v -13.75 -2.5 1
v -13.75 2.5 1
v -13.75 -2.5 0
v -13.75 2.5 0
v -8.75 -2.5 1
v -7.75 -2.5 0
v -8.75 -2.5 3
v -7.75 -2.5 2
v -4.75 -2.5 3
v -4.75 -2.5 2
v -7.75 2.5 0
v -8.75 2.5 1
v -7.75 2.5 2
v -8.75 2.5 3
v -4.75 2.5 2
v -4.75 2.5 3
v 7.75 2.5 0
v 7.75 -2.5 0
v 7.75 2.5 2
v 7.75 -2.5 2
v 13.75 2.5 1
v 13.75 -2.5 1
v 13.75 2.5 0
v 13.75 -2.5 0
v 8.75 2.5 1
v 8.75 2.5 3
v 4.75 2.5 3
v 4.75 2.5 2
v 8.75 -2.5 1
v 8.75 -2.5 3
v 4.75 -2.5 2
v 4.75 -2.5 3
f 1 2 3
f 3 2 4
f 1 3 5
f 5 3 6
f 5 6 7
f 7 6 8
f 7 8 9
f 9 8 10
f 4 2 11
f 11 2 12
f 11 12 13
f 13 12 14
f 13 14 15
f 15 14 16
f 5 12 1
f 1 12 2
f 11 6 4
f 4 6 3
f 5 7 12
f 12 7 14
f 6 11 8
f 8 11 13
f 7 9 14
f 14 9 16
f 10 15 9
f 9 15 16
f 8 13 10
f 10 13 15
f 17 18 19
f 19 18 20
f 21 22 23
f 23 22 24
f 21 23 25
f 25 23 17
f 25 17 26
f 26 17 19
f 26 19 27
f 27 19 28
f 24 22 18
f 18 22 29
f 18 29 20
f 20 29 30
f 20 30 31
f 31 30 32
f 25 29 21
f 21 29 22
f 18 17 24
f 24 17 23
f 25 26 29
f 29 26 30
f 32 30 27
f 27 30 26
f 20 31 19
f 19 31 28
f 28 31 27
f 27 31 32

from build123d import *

# Parameters (mm, degrees)
SKETCH1_W             = 5
SKETCH1_H             = 5
BOSS_EXTRUDE1_DEPTH   = 1
BOSS_EXTRUDE1_2_DEPTH = 1
SKETCH2_W             = 1
SKETCH2_H             = 5
BOSS_EXTRUDE2_DEPTH   = 3
SKETCH3_W             = 3
SKETCH3_H             = 5
SKETCH3_W_2           = 4
BOSS_EXTRUDE3_DEPTH   = 1


with BuildPart() as part:
    # Sketch1 → Boss-Extrude1 (new body)
    with BuildSketch(Plane.XY):
        with Locations((-11.25, 0)):
            Rectangle(SKETCH1_W, SKETCH1_H)
    extrude(amount=BOSS_EXTRUDE1_DEPTH)



with BuildPart() as body_2:
    # Sketch1 → Boss-Extrude1 2 (new body)
    with BuildSketch(Plane.XY):
        with Locations((11.25, 0)):
            Rectangle(SKETCH1_W, SKETCH1_H)
    extrude(amount=BOSS_EXTRUDE1_2_DEPTH)


with BuildPart() as part_1:
    add(part.part)

    add(body_2.part)  # Boss-Extrude2 merges body 2
    # Sketch2 → Boss-Extrude2 (add)
    with BuildSketch(Plane.XY):
        with Locations((-8.25, 0)):
            Rectangle(SKETCH2_W, SKETCH2_H)
        with Locations((8.25, 0)):
            Rectangle(SKETCH2_W, SKETCH2_H)
    extrude(amount=BOSS_EXTRUDE2_DEPTH)

    # Sketch3 → Boss-Extrude3 (add)
    with BuildSketch(Plane.XY.offset(3)):
        with Locations((-6.25, 0)):
            Rectangle(SKETCH3_W, SKETCH3_H)
        with Locations((6.75, 0)):
            Rectangle(SKETCH3_W_2, SKETCH3_H)
    extrude(amount=-BOSS_EXTRUDE3_DEPTH)


solid = part_1.part
